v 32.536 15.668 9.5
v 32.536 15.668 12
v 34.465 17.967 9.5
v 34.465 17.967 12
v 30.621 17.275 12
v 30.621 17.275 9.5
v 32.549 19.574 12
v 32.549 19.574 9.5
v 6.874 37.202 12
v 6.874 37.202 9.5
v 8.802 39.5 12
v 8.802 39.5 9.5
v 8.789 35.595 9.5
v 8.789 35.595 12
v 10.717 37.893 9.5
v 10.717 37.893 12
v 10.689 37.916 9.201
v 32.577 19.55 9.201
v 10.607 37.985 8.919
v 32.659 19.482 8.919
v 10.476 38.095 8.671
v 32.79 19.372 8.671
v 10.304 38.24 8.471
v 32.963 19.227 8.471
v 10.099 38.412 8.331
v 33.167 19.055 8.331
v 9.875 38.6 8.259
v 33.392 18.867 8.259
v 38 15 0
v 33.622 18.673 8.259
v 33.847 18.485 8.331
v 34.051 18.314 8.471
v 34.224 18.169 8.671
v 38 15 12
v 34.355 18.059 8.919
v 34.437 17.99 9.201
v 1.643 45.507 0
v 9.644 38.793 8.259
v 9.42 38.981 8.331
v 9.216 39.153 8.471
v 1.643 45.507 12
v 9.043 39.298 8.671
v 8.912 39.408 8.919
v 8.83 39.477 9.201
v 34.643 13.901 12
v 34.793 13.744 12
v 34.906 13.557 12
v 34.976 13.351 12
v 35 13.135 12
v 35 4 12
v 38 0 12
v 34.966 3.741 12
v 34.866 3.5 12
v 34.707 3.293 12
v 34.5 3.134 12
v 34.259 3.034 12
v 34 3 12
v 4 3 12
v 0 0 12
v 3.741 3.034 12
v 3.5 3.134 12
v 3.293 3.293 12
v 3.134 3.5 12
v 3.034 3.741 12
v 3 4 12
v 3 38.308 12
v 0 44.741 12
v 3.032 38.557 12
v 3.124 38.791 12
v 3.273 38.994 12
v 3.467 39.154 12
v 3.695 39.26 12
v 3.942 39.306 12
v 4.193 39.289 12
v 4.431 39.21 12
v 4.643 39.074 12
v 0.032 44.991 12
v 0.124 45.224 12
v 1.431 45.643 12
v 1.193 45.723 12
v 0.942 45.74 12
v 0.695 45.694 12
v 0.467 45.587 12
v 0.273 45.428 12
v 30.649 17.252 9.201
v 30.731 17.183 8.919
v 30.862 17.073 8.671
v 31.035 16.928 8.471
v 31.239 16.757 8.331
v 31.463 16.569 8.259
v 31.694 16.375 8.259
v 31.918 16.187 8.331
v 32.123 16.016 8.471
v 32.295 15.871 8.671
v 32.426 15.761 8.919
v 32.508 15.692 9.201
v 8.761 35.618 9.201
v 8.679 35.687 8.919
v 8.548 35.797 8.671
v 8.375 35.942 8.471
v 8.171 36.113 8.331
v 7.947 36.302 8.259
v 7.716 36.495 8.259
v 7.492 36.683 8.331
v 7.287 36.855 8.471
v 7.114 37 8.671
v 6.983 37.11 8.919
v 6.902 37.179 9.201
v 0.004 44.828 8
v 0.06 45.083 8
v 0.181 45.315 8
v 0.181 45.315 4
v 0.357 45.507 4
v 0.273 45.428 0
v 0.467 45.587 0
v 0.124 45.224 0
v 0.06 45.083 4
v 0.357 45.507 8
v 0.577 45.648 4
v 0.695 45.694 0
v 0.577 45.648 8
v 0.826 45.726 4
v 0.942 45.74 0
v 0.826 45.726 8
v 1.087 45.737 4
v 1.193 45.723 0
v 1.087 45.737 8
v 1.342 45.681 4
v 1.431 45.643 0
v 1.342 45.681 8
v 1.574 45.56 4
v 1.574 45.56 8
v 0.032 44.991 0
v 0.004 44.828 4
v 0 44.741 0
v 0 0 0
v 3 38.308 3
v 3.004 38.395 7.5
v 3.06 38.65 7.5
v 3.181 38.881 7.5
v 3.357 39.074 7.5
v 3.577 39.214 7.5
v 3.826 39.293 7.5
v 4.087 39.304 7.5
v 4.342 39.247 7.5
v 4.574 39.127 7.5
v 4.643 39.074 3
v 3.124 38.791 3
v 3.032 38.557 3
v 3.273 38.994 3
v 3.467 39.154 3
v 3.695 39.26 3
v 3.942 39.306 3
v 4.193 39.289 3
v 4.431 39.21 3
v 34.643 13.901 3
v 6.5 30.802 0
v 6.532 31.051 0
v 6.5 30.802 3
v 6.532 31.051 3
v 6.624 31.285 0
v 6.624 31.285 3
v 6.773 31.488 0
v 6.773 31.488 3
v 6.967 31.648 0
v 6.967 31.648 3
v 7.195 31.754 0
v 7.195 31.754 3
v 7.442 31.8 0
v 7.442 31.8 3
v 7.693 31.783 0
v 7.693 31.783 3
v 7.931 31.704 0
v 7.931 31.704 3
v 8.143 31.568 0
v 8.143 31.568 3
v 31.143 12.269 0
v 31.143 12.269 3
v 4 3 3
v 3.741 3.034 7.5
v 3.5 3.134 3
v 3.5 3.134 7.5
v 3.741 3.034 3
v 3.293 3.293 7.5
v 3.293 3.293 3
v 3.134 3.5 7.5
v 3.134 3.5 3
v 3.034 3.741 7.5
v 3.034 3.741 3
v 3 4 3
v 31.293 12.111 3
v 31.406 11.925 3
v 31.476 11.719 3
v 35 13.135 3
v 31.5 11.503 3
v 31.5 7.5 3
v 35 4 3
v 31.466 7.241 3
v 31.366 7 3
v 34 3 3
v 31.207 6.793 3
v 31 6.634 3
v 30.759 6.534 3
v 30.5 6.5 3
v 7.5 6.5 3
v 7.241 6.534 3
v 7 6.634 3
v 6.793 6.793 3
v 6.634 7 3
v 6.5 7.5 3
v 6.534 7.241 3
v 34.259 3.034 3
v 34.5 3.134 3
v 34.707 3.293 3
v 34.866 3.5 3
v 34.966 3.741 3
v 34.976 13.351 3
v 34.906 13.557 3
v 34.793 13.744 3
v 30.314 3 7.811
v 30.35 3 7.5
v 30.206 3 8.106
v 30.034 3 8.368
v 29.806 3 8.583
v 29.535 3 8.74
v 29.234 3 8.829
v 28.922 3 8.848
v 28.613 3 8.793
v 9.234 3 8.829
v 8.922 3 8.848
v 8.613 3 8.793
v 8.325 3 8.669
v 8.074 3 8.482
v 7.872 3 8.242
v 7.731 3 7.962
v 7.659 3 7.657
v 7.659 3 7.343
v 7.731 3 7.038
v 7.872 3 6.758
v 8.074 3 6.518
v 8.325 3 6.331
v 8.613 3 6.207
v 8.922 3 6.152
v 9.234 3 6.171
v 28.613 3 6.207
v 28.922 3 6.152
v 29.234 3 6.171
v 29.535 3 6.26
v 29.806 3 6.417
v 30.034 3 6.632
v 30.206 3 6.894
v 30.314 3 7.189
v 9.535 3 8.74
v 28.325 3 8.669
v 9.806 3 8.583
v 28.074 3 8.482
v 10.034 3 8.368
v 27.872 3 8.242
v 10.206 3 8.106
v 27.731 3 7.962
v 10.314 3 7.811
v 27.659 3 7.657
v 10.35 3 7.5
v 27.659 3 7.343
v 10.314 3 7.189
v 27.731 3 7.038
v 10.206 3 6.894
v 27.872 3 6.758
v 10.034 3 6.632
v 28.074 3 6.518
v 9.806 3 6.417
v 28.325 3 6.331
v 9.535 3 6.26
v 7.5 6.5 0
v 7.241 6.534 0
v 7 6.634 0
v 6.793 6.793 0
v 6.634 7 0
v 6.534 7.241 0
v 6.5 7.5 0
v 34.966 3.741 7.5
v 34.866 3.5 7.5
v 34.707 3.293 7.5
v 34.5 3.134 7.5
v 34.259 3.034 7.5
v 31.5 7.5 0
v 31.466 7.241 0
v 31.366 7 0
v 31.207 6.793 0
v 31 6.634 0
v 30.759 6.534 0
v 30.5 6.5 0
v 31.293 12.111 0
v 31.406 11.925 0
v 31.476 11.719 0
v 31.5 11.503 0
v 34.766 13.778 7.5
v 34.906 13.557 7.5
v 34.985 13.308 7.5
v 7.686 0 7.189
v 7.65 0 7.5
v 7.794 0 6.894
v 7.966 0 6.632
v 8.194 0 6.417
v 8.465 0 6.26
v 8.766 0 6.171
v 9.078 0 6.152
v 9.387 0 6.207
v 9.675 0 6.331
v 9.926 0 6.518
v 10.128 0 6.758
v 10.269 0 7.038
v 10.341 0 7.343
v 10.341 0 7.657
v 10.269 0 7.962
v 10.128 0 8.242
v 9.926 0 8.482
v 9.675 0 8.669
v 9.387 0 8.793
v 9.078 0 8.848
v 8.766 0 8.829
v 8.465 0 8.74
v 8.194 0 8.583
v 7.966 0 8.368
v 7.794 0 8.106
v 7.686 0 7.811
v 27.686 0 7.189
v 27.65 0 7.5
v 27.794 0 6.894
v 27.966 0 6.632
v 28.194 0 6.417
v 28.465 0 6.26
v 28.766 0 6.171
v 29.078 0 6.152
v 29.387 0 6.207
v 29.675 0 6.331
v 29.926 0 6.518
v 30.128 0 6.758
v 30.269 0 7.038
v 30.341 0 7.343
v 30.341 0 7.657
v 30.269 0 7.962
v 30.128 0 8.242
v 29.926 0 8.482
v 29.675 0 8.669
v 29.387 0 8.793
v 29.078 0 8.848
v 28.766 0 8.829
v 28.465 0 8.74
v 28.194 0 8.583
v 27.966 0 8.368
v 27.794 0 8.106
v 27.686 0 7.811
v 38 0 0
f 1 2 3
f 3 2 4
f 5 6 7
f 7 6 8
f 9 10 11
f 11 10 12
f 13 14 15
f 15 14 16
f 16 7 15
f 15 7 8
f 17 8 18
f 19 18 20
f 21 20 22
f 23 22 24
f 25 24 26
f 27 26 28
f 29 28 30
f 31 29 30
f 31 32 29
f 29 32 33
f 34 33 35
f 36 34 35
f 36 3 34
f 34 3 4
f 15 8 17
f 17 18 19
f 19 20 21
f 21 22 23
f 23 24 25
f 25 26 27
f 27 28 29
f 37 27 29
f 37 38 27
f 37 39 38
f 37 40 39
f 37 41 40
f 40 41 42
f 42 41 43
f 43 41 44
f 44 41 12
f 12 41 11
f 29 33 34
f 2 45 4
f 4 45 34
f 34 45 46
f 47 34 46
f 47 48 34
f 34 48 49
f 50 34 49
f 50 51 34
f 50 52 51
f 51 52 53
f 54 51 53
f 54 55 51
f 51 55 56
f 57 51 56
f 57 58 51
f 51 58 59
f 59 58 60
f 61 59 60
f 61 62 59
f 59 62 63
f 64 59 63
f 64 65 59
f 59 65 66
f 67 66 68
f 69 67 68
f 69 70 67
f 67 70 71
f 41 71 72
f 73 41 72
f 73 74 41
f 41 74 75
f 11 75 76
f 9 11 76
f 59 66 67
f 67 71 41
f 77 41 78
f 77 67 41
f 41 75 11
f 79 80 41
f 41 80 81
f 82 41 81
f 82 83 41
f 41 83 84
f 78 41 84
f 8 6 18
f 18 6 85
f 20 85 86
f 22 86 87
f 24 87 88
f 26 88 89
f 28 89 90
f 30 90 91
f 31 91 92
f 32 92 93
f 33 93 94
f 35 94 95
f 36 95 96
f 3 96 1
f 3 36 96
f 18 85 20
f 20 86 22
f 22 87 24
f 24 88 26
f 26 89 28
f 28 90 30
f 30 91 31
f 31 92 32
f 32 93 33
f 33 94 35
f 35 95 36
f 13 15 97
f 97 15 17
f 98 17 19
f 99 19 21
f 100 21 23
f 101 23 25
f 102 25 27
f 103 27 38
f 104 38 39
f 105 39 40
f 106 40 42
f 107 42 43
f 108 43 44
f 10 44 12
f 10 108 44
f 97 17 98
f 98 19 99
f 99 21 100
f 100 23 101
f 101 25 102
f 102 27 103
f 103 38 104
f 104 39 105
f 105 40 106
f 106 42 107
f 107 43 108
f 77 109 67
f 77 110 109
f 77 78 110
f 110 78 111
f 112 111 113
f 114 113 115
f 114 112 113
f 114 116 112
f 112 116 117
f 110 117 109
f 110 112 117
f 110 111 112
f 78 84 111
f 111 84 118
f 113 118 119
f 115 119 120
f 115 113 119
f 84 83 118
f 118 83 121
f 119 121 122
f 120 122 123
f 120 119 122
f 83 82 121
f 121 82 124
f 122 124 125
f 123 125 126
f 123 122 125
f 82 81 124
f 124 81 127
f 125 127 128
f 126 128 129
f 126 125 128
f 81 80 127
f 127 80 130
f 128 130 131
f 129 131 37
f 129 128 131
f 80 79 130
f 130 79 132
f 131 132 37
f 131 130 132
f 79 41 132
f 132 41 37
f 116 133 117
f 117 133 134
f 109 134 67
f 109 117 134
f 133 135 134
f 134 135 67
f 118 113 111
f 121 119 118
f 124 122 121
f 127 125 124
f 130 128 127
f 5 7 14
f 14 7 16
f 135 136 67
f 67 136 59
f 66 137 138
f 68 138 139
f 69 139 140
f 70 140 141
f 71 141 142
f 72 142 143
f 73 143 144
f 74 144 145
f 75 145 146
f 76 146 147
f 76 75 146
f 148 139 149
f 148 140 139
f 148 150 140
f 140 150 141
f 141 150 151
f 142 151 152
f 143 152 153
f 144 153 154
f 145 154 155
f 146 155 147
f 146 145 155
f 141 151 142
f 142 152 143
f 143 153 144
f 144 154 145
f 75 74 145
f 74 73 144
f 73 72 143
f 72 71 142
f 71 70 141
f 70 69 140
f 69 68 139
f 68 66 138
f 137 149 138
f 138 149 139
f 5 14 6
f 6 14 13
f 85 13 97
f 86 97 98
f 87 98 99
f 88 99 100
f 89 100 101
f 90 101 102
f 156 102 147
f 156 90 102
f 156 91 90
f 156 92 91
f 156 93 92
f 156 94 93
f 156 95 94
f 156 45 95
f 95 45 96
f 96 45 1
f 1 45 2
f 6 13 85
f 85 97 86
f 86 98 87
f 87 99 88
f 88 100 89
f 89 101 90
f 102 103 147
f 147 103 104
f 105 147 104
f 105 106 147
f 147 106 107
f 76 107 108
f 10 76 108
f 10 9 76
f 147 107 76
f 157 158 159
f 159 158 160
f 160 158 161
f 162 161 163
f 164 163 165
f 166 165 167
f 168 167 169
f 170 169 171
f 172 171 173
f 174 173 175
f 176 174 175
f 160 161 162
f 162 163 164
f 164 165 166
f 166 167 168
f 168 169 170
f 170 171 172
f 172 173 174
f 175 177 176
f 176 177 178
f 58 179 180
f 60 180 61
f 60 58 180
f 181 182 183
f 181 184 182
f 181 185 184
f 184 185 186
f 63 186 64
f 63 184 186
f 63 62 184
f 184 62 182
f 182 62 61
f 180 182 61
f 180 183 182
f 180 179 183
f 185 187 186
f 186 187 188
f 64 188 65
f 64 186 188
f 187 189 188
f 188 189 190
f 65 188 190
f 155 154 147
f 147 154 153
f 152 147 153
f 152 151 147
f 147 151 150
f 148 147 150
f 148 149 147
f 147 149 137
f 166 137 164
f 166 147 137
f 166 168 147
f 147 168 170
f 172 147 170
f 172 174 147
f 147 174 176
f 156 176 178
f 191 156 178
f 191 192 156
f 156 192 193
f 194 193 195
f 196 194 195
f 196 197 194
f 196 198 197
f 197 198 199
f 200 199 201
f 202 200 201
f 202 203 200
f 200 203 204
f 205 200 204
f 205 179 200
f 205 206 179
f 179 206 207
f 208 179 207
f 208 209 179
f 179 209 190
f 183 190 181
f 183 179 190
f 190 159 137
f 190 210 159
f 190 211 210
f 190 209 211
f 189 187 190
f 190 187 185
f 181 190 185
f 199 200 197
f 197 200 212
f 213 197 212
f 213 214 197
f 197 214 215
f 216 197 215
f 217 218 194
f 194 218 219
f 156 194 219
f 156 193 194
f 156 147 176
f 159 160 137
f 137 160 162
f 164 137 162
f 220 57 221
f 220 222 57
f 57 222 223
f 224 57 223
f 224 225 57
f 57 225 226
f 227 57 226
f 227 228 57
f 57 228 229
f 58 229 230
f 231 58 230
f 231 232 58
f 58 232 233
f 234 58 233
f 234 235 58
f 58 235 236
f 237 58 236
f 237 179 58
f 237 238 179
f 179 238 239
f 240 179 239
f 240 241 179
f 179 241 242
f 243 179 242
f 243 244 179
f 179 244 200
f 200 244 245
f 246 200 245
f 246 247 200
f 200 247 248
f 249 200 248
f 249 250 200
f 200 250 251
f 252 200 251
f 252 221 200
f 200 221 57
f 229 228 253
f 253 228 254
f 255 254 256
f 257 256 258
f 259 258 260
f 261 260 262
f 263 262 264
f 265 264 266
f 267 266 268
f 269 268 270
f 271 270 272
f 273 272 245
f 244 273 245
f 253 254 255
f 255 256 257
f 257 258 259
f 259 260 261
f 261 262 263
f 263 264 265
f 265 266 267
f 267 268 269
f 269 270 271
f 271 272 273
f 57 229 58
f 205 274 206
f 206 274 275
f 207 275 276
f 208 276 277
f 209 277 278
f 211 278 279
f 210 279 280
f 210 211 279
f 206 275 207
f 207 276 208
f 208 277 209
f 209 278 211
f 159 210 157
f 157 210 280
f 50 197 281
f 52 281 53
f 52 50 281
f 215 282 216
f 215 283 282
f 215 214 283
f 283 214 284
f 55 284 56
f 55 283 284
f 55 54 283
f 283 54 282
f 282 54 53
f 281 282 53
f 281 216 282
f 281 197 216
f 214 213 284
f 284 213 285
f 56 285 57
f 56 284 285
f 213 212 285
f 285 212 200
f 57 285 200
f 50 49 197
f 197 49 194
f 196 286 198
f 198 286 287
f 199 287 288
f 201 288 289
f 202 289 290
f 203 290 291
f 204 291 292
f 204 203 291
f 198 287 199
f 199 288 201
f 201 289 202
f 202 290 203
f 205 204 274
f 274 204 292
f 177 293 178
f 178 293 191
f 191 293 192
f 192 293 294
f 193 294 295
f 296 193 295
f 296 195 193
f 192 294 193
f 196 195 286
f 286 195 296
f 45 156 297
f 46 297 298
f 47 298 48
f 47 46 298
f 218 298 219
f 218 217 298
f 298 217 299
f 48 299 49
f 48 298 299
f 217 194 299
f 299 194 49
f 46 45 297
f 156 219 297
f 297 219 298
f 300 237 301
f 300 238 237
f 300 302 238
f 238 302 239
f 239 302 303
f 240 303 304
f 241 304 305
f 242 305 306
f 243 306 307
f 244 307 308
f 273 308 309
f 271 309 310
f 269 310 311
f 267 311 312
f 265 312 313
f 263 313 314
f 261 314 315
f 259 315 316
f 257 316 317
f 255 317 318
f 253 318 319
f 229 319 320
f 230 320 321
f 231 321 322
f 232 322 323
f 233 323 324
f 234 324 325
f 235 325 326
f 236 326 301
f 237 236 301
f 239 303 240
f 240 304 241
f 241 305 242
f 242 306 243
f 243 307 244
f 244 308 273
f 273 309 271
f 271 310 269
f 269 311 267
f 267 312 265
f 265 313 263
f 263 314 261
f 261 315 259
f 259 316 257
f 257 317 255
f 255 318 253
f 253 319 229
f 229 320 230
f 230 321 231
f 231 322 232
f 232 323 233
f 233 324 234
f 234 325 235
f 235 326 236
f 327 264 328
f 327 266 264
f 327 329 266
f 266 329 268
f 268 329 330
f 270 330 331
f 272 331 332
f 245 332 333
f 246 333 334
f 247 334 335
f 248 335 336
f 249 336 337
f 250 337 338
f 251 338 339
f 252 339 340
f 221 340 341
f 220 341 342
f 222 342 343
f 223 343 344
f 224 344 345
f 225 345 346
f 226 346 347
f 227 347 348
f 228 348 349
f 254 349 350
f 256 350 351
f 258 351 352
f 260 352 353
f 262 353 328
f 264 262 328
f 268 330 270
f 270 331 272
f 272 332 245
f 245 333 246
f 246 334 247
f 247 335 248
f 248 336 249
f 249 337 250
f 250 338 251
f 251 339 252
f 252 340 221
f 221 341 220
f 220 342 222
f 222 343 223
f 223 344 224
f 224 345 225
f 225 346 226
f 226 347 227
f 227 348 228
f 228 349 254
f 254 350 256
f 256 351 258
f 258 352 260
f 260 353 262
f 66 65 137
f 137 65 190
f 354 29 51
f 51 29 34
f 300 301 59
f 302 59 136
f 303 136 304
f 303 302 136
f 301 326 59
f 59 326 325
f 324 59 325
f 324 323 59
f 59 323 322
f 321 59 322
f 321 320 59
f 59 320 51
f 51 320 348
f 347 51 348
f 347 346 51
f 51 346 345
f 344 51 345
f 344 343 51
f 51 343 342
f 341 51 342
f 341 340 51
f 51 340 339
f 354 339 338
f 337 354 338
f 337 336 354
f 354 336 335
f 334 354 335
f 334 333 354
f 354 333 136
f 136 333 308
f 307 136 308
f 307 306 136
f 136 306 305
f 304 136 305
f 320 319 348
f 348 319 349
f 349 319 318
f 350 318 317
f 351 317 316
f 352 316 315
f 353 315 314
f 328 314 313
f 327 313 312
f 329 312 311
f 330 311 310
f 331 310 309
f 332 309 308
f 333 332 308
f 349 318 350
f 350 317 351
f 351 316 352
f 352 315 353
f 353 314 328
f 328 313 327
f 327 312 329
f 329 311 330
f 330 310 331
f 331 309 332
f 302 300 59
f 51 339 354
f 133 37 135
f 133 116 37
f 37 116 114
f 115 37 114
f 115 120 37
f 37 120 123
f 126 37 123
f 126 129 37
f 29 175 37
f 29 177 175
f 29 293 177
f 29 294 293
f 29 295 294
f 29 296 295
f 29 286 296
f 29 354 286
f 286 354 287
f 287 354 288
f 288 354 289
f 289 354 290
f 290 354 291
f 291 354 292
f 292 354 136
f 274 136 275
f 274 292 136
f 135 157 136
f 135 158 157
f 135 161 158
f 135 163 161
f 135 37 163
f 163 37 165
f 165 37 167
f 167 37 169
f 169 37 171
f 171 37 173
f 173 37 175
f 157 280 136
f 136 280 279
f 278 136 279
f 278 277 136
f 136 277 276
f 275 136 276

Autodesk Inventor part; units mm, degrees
ref_plane "YZ Plane" through (0, 0, 0) normal (1, 0, 0) x (0, 1, 0)
ref_plane "XZ Plane" through (0, 0, 0) normal (0, 1, 0) x (-1, 0, 0)
ref_plane "XY Plane" through (0, 0, 0) normal (0, 0, 1) x (1, 0, 0)
sketch "Skizze1" plane through (0, 0, 0) normal (0, 0, 1) x (1, 0, 0)
  line L0 (0, 0) -> (0, 46.8858)
  line L1 (0, 46.8858) -> (38, 15)
  line L2 (38, 15) -> (38, 0)
  line L3 (38, 0) -> (0, 0)
  line L4 (6.5, 32.9465) -> (6.5, 6.5)
  line L5 (6.5, 6.5) -> (31.5, 6.5)
  line L6 (31.5, 6.5) -> (31.5, 11.969)
  line L7 (31.5, 11.969) -> (6.5, 32.9465)
  dimension "d0" = 130
  dimension "d1" = 15
  dimension "d2" = 38
  dimension "d3" = 6.5
  dimension "d4" = 6.5
  dimension "d5" = 6.5
  dimension "d6" = 6.5
extrude "Extrusion1" add sketch "Skizze1" along normal blind 12
sketch "Skizze2" plane through (0, 0, 12) normal (0, 0, 1) x (1, 0, 0)
  line L0 (3, 40.4523) -> (3, 3)
  line L1 (3, 3) -> (35, 3)
  line L2 (35, 3) -> (35, 13.6011)
  line L3 (35, 13.6011) -> (3, 40.4523)
  line L4 (0, 0) -> (38, 0) projected
  line L5 (0, 46.8858) -> (0, 0) projected
  line L6 (38, 15) -> (0, 46.8858) projected
  line L7 (38, 0) -> (38, 15) projected
  dimension "d9" = 3
  dimension "d10" = 3
  dimension "d11" = 3
  dimension "d12" = 3
extrude "Extrusion2" cut sketch "Skizze2" against normal blind 9 contours L3 L2 L1 L0
sketch "Skizze3" plane through (3, 3, 12) normal (0, 1, 0) x (1, 0, 0)
  line L0 (-3, 0) -> (-3, 12) projected
  line L1 (-3, 12) -> (35, 12) projected
  line L2 (35, 12) -> (35, 0) projected
  line L3 (35, 0) -> (32, 0) projected
  line L4 (32, 0) -> (0, 0) projected
  line L5 (0, 0) -> (-3, 0) projected
  line L6 (32, 0) -> (32, 9) projected
  line L7 (32, 9) -> (0, 9) projected
  line L8 (0, 9) -> (0, 0) projected
  line L9 (0, 0) -> (0, 9) projected
  line L10 (32, 0) -> (32, 9) projected
  line L11 (32, 4.5) -> (0, 4.5)
  point P0 (6, 4.5)
  point P1 (26, 4.5)
  dimension "d15" = 6
  dimension "d17" = 6
hole "Bohrung1" at (9, 3, 7.5) at (29, 3, 7.5) direction (0, -1, 0) diameter 2.7 depth 8 tip angle 118
fillet "Rundung1" radius 1 9 edges at (35, 13.6011, 7.5) (31.5, 11.969, 1.5) (31.5, 6.5, 1.5) (35, 3, 7.5) (6.5, 6.5, 1.5) (3, 3, 7.5) (6.5, 32.9465, 1.5) (3, 40.4523, 7.5) (0, 46.8858, 6)
sketch "Skizze4" plane through (4.6428, 39.0738, 3) normal (-0.6427876, -0.7660444, 0) x (0.7660444, -0.6427876, 0)
  line L0 (-6.0607, 9) -> (0, 9) projected
  line L1 (0, 9) -> (39.1622, 9) projected
  line L2 (39.1622, 9) -> (43.5447, 9) projected
  line L3 (43.5447, 9) -> (43.5447, -3) projected
  line L4 (43.5447, -3) -> (-6.0607, -3) projected
  line L5 (-6.0607, -3) -> (-6.0607, 9) projected
  line L6 (0, 0) -> (0, 9) projected
  line L7 (0, 0) -> (39.1622, 0) projected
  line L8 (39.1622, 0) -> (39.1622, 9) projected
  point P0 (21.5596, -3)
  point P1 (35.1622, 6.5)
  point P2 (4.1622, 6.5)
  point P3 (35.1622, 6.5)
  dimension "d26" = 2.5
  dimension "d27" = 4
  dimension "d28" = 2.5
  dimension "d29" = 35
  dimension "d30" = 4.1622
hole "Bohrung2" at (31.5786, 16.472, 9.5) at (7.8312, 36.3984, 9.5) direction (0.6427876, 0.7660444, 0) diameter 2.5 depth 8 tip angle 118
sketch "Skizze5" plane through (38, 15, 12) normal (0.6427876, 0.7660444, 0) x (0.7660444, -0.6427876, 0)
  circle A0 centre (-5.8652, 2.5) radius 1.25 projected
  line L0 (-4.6152, 2.5) -> (-4.6152, 0)
  line L1 (-19.4679, 0) -> (9.6418, 0) projected
  line L2 (-7.1152, 2.5) -> (-7.1152, 0)
  circle A1 centre (-36.8652, 2.5) radius 1.25 projected
  line L3 (-35.6152, 2.5) -> (-35.6152, 0)
  line L4 (-41.0274, 0) -> (-1.8652, 0) projected
  line L5 (-38.1152, 2.5) -> (-38.1152, 0)
  point P0 (-19.4679, 12)
extrude "Extrusion3" cut sketch "Skizze5" against normal blind 4.5 contours L0 L1 L2 A0 | L3 L4 L5 A1
properties part number "lcd_halterung_162C_links"
